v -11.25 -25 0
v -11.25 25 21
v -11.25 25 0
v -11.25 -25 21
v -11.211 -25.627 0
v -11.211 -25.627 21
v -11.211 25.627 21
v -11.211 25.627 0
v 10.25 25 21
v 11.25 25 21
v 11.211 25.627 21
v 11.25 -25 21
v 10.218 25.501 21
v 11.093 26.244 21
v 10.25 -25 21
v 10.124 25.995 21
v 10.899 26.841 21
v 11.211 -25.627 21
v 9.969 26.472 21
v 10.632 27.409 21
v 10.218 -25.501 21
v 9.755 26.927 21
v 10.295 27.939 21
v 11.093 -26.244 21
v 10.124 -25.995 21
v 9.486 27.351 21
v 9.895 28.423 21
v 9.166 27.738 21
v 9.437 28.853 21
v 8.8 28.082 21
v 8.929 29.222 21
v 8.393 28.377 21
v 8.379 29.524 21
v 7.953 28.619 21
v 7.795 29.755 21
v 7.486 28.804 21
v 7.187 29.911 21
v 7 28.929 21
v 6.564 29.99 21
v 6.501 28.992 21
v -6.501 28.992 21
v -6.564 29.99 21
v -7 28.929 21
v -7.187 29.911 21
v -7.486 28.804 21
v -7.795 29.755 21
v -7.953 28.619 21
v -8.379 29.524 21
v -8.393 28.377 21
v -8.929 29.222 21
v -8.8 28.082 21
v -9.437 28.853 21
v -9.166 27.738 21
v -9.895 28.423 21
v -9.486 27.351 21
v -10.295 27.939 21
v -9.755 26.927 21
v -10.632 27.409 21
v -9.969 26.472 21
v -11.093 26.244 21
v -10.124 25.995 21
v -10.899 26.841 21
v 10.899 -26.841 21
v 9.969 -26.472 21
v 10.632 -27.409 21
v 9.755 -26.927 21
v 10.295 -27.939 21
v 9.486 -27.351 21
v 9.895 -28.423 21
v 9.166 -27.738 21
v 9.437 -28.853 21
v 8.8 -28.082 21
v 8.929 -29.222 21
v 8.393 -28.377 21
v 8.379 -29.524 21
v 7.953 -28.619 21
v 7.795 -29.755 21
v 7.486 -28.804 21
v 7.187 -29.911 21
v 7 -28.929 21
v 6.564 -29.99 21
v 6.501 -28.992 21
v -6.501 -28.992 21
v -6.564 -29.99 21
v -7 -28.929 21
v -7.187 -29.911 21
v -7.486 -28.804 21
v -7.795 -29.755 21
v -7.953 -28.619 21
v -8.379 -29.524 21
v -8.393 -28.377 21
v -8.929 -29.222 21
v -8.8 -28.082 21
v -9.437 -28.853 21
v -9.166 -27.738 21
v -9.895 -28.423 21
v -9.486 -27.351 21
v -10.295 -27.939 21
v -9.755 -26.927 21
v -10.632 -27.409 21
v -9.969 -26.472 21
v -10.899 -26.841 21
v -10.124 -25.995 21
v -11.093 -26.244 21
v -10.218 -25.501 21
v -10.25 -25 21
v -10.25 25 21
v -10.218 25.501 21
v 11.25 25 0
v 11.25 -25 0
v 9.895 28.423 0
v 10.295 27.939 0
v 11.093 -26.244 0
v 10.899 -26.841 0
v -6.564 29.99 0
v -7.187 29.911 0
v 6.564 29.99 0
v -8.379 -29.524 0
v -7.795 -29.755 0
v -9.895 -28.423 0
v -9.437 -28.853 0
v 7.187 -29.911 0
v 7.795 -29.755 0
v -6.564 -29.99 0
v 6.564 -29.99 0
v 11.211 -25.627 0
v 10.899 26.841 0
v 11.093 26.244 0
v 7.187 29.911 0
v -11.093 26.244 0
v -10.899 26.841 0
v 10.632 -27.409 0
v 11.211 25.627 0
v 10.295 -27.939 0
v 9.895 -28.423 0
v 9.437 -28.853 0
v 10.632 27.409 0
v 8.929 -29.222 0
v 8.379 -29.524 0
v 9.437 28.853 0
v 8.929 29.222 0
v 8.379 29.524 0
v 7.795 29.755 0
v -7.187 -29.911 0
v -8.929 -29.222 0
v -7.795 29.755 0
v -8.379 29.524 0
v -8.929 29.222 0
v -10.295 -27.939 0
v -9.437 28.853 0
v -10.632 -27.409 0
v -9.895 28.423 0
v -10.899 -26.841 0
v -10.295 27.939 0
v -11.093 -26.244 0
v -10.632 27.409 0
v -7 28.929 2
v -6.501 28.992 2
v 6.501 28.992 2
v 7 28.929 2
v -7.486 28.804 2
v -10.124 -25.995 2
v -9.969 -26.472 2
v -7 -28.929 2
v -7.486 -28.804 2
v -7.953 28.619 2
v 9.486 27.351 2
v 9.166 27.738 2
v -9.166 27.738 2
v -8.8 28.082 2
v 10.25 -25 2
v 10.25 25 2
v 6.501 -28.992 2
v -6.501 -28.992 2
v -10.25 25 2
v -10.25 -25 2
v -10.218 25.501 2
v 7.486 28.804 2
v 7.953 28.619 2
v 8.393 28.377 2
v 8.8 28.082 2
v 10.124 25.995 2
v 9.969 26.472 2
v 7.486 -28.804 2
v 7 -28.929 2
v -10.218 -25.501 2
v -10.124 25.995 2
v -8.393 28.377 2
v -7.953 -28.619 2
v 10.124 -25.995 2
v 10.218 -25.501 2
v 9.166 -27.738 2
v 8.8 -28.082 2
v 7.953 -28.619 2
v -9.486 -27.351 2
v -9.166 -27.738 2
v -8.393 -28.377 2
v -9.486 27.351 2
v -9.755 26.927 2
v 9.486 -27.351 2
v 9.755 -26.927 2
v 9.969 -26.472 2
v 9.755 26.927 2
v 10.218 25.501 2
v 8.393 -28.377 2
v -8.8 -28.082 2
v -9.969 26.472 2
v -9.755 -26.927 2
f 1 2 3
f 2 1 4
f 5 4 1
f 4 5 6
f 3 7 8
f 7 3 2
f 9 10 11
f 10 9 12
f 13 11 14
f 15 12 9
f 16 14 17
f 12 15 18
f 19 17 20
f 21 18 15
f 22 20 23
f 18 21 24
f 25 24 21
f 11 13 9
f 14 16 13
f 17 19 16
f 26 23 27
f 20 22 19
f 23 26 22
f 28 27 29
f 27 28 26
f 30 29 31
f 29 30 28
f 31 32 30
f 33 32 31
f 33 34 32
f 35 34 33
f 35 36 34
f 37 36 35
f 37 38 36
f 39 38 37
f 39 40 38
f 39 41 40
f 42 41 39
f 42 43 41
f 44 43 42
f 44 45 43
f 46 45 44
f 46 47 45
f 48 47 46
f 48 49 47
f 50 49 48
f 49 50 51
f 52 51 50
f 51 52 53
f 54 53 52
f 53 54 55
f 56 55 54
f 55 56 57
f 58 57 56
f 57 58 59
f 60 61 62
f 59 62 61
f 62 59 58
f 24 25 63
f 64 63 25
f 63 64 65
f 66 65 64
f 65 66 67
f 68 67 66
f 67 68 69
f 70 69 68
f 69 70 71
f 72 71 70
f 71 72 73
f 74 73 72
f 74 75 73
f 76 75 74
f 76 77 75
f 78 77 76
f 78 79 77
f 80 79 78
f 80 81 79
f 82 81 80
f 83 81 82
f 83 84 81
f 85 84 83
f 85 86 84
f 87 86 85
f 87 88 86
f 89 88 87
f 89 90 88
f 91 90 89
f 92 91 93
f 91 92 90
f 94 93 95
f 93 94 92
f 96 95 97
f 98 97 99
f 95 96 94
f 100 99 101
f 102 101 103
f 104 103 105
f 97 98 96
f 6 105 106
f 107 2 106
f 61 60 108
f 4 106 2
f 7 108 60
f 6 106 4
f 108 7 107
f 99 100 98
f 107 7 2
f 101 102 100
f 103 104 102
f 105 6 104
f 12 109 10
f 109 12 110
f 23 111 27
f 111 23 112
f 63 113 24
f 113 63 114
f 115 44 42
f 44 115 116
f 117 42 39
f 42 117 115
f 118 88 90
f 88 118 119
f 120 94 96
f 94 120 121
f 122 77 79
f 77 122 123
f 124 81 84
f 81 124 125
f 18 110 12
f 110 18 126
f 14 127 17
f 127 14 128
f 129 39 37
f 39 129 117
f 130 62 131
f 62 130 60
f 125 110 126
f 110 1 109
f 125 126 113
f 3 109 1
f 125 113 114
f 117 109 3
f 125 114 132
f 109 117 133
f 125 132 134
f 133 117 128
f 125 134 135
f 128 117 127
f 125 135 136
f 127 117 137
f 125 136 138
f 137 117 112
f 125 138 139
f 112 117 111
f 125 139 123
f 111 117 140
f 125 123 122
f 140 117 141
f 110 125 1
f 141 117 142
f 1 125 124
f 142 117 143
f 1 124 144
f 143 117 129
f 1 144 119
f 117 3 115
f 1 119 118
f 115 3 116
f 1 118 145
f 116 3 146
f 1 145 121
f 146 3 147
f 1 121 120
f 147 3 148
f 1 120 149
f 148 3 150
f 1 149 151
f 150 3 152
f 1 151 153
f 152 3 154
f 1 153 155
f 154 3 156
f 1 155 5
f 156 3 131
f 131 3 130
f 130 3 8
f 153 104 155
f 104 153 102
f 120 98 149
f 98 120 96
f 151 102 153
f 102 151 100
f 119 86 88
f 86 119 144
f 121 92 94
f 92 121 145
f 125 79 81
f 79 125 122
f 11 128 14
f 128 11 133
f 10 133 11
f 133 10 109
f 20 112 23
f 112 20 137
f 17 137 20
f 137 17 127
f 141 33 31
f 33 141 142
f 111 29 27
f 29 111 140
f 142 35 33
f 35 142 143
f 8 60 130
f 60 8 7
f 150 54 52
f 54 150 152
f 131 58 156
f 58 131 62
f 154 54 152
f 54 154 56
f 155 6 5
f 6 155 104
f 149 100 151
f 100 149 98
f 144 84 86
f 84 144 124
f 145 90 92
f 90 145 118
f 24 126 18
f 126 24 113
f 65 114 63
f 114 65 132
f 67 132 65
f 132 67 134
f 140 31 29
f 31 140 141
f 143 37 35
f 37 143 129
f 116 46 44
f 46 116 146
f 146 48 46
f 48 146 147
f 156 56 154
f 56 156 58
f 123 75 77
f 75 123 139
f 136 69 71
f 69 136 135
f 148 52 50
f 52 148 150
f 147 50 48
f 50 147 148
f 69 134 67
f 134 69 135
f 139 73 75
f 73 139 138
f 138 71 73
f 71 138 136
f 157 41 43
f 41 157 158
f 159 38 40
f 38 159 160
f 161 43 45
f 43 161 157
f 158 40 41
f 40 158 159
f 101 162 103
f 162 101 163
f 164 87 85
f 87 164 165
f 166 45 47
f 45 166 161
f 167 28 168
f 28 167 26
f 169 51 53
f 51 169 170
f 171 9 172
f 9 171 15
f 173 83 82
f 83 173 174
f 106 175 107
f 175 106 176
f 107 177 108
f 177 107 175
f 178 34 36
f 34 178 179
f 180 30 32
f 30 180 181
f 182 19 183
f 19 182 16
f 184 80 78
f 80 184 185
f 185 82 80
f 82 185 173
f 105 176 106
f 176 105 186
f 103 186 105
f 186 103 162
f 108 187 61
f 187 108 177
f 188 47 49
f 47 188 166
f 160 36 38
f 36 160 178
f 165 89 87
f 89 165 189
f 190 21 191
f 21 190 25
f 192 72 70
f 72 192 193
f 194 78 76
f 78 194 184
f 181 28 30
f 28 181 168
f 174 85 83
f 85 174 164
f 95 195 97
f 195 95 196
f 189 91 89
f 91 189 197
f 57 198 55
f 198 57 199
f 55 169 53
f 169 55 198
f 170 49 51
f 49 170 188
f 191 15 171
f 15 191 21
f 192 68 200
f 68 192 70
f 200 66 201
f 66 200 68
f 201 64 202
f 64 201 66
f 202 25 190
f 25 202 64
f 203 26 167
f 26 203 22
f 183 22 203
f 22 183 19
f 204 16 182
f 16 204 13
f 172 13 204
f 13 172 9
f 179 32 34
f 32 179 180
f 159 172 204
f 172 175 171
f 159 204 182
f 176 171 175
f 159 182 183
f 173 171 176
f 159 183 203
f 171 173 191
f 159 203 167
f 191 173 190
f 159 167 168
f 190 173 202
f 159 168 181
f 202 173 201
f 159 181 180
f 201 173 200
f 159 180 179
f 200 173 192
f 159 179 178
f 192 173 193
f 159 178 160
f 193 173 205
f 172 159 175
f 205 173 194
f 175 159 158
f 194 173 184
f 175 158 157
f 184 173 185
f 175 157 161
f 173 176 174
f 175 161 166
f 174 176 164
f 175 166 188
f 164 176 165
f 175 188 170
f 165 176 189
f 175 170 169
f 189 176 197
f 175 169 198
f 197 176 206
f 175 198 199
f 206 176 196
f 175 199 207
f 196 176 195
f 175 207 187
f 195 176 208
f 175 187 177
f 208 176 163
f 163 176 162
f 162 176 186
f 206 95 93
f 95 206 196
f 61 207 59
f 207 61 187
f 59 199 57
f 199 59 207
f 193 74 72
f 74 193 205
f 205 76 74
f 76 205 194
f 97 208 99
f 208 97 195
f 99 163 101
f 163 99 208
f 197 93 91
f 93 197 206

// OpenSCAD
$fn = 50;


difference() {
	union() {
		hull() {
			translate(v = [-6.2500000000, 25.0000000000, 0]) {
				cylinder(h = 21, r = 5);
			}
			translate(v = [6.2500000000, 25.0000000000, 0]) {
				cylinder(h = 21, r = 5);
			}
			translate(v = [-6.2500000000, -25.0000000000, 0]) {
				cylinder(h = 21, r = 5);
			}
			translate(v = [6.2500000000, -25.0000000000, 0]) {
				cylinder(h = 21, r = 5);
			}
		}
	}
	union() {
		translate(v = [0, 0, 2]) {
			hull() {
				translate(v = [-6.2500000000, 25.0000000000, 0]) {
					cylinder(h = 19, r = 4);
				}
				translate(v = [6.2500000000, 25.0000000000, 0]) {
					cylinder(h = 19, r = 4);
				}
				translate(v = [-6.2500000000, -25.0000000000, 0]) {
					cylinder(h = 19, r = 4);
				}
				translate(v = [6.2500000000, -25.0000000000, 0]) {
					cylinder(h = 19, r = 4);
				}
			}
		}
	}
}
